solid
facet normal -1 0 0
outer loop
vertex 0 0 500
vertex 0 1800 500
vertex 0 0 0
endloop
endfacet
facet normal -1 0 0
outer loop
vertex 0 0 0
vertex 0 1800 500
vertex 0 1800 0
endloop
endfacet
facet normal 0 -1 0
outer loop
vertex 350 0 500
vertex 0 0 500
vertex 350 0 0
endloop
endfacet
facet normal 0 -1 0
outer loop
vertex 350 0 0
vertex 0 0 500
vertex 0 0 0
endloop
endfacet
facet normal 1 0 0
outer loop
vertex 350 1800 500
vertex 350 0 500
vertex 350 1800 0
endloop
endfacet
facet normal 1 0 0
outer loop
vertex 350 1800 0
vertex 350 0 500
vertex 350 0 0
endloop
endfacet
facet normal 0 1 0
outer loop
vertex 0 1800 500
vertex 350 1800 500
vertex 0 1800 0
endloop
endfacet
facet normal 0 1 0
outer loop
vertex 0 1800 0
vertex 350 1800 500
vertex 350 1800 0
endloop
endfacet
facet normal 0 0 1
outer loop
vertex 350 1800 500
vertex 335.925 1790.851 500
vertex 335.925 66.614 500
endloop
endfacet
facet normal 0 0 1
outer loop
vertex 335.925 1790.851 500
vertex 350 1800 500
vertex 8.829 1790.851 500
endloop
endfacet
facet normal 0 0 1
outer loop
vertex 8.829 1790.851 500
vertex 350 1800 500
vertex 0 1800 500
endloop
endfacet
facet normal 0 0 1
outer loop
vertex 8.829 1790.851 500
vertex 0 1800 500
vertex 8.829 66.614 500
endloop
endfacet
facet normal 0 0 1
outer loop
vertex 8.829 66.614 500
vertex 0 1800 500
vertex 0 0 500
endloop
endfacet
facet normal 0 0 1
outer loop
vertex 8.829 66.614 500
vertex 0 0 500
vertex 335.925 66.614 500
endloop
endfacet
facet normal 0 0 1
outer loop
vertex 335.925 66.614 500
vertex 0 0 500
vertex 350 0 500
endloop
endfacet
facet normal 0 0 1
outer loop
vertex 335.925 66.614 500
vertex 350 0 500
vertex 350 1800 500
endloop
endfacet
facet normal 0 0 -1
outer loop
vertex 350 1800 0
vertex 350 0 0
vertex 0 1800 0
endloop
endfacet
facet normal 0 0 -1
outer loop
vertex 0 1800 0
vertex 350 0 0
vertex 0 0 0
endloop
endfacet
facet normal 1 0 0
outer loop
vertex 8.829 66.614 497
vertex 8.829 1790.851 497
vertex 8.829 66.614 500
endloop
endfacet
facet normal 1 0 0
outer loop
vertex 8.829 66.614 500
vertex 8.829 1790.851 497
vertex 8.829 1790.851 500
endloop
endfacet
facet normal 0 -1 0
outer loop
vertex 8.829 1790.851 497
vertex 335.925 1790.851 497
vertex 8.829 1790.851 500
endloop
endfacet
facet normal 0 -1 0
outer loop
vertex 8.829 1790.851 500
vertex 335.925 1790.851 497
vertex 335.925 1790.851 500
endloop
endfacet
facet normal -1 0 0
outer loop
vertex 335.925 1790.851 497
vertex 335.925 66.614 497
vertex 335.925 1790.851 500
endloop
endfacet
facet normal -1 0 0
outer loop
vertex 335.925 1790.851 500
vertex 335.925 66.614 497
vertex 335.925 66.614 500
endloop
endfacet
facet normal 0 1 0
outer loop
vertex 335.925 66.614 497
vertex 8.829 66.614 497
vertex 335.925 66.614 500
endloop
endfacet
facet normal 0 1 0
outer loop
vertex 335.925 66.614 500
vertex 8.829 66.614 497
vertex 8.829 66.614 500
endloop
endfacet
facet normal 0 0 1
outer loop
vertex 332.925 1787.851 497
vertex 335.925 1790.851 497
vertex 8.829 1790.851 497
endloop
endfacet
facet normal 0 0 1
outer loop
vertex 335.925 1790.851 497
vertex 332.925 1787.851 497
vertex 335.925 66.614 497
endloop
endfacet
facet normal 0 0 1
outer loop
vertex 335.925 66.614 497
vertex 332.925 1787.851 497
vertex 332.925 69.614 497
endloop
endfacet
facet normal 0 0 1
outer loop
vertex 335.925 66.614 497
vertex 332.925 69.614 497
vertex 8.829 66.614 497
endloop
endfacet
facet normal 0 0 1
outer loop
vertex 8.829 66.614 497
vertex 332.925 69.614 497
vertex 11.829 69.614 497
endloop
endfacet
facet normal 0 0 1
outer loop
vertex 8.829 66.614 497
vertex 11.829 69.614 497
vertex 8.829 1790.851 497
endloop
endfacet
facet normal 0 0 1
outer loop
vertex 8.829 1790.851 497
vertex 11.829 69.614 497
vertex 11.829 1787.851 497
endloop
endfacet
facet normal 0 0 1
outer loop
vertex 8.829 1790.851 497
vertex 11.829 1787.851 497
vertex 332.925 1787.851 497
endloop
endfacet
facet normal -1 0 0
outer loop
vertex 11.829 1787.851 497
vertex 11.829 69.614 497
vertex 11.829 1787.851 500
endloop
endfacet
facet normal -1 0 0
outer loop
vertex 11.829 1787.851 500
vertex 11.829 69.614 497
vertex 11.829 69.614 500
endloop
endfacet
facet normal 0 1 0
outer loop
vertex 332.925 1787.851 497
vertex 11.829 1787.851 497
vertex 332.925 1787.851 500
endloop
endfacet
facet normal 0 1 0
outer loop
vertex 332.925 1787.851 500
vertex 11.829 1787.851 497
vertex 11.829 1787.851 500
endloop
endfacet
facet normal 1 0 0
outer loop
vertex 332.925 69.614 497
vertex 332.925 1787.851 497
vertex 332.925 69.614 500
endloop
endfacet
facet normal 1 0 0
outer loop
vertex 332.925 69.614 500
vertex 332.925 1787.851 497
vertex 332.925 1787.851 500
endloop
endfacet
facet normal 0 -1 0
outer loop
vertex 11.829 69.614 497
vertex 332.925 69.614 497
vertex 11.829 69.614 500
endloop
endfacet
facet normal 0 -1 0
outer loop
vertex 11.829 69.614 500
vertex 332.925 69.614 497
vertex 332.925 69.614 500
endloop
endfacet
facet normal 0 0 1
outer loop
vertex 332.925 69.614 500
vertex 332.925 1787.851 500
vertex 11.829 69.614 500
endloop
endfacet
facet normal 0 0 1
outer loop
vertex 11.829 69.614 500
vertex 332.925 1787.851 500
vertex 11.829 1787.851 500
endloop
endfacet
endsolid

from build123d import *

# Parameters (mm, degrees)
SKETCH1_W               = 350
SKETCH1_H               = 1800
BOSS_EXTRUDE1_DEPTH     = 500
SKETCH2_W               = 327.095698038
SKETCH2_H               = 1724.237144731
SKETCH2_W_2             = 321.095698038
SKETCH2_H_2             = 1718.237144731
CUT_EXTRUDE_THIN1_DEPTH = 3


with BuildPart() as part:
    # Sketch1 → Boss-Extrude1 (new body)
    with BuildSketch(Plane.XY):
        with Locations((175, 900)):
            Rectangle(SKETCH1_W, SKETCH1_H)
    extrude(amount=BOSS_EXTRUDE1_DEPTH)

    # Sketch2 → Cut-Extrude-Thin1 (cut)
    with BuildSketch(Plane.XY.offset(500)):
        with Locations((172.376845805, 928.732453694)):
            Rectangle(SKETCH2_W, SKETCH2_H)
        with Locations((172.376845805, 928.732453694)):
            Rectangle(SKETCH2_W_2, SKETCH2_H_2, mode=Mode.SUBTRACT)
    extrude(amount=-CUT_EXTRUDE_THIN1_DEPTH, mode=Mode.SUBTRACT)


solid = part.part
